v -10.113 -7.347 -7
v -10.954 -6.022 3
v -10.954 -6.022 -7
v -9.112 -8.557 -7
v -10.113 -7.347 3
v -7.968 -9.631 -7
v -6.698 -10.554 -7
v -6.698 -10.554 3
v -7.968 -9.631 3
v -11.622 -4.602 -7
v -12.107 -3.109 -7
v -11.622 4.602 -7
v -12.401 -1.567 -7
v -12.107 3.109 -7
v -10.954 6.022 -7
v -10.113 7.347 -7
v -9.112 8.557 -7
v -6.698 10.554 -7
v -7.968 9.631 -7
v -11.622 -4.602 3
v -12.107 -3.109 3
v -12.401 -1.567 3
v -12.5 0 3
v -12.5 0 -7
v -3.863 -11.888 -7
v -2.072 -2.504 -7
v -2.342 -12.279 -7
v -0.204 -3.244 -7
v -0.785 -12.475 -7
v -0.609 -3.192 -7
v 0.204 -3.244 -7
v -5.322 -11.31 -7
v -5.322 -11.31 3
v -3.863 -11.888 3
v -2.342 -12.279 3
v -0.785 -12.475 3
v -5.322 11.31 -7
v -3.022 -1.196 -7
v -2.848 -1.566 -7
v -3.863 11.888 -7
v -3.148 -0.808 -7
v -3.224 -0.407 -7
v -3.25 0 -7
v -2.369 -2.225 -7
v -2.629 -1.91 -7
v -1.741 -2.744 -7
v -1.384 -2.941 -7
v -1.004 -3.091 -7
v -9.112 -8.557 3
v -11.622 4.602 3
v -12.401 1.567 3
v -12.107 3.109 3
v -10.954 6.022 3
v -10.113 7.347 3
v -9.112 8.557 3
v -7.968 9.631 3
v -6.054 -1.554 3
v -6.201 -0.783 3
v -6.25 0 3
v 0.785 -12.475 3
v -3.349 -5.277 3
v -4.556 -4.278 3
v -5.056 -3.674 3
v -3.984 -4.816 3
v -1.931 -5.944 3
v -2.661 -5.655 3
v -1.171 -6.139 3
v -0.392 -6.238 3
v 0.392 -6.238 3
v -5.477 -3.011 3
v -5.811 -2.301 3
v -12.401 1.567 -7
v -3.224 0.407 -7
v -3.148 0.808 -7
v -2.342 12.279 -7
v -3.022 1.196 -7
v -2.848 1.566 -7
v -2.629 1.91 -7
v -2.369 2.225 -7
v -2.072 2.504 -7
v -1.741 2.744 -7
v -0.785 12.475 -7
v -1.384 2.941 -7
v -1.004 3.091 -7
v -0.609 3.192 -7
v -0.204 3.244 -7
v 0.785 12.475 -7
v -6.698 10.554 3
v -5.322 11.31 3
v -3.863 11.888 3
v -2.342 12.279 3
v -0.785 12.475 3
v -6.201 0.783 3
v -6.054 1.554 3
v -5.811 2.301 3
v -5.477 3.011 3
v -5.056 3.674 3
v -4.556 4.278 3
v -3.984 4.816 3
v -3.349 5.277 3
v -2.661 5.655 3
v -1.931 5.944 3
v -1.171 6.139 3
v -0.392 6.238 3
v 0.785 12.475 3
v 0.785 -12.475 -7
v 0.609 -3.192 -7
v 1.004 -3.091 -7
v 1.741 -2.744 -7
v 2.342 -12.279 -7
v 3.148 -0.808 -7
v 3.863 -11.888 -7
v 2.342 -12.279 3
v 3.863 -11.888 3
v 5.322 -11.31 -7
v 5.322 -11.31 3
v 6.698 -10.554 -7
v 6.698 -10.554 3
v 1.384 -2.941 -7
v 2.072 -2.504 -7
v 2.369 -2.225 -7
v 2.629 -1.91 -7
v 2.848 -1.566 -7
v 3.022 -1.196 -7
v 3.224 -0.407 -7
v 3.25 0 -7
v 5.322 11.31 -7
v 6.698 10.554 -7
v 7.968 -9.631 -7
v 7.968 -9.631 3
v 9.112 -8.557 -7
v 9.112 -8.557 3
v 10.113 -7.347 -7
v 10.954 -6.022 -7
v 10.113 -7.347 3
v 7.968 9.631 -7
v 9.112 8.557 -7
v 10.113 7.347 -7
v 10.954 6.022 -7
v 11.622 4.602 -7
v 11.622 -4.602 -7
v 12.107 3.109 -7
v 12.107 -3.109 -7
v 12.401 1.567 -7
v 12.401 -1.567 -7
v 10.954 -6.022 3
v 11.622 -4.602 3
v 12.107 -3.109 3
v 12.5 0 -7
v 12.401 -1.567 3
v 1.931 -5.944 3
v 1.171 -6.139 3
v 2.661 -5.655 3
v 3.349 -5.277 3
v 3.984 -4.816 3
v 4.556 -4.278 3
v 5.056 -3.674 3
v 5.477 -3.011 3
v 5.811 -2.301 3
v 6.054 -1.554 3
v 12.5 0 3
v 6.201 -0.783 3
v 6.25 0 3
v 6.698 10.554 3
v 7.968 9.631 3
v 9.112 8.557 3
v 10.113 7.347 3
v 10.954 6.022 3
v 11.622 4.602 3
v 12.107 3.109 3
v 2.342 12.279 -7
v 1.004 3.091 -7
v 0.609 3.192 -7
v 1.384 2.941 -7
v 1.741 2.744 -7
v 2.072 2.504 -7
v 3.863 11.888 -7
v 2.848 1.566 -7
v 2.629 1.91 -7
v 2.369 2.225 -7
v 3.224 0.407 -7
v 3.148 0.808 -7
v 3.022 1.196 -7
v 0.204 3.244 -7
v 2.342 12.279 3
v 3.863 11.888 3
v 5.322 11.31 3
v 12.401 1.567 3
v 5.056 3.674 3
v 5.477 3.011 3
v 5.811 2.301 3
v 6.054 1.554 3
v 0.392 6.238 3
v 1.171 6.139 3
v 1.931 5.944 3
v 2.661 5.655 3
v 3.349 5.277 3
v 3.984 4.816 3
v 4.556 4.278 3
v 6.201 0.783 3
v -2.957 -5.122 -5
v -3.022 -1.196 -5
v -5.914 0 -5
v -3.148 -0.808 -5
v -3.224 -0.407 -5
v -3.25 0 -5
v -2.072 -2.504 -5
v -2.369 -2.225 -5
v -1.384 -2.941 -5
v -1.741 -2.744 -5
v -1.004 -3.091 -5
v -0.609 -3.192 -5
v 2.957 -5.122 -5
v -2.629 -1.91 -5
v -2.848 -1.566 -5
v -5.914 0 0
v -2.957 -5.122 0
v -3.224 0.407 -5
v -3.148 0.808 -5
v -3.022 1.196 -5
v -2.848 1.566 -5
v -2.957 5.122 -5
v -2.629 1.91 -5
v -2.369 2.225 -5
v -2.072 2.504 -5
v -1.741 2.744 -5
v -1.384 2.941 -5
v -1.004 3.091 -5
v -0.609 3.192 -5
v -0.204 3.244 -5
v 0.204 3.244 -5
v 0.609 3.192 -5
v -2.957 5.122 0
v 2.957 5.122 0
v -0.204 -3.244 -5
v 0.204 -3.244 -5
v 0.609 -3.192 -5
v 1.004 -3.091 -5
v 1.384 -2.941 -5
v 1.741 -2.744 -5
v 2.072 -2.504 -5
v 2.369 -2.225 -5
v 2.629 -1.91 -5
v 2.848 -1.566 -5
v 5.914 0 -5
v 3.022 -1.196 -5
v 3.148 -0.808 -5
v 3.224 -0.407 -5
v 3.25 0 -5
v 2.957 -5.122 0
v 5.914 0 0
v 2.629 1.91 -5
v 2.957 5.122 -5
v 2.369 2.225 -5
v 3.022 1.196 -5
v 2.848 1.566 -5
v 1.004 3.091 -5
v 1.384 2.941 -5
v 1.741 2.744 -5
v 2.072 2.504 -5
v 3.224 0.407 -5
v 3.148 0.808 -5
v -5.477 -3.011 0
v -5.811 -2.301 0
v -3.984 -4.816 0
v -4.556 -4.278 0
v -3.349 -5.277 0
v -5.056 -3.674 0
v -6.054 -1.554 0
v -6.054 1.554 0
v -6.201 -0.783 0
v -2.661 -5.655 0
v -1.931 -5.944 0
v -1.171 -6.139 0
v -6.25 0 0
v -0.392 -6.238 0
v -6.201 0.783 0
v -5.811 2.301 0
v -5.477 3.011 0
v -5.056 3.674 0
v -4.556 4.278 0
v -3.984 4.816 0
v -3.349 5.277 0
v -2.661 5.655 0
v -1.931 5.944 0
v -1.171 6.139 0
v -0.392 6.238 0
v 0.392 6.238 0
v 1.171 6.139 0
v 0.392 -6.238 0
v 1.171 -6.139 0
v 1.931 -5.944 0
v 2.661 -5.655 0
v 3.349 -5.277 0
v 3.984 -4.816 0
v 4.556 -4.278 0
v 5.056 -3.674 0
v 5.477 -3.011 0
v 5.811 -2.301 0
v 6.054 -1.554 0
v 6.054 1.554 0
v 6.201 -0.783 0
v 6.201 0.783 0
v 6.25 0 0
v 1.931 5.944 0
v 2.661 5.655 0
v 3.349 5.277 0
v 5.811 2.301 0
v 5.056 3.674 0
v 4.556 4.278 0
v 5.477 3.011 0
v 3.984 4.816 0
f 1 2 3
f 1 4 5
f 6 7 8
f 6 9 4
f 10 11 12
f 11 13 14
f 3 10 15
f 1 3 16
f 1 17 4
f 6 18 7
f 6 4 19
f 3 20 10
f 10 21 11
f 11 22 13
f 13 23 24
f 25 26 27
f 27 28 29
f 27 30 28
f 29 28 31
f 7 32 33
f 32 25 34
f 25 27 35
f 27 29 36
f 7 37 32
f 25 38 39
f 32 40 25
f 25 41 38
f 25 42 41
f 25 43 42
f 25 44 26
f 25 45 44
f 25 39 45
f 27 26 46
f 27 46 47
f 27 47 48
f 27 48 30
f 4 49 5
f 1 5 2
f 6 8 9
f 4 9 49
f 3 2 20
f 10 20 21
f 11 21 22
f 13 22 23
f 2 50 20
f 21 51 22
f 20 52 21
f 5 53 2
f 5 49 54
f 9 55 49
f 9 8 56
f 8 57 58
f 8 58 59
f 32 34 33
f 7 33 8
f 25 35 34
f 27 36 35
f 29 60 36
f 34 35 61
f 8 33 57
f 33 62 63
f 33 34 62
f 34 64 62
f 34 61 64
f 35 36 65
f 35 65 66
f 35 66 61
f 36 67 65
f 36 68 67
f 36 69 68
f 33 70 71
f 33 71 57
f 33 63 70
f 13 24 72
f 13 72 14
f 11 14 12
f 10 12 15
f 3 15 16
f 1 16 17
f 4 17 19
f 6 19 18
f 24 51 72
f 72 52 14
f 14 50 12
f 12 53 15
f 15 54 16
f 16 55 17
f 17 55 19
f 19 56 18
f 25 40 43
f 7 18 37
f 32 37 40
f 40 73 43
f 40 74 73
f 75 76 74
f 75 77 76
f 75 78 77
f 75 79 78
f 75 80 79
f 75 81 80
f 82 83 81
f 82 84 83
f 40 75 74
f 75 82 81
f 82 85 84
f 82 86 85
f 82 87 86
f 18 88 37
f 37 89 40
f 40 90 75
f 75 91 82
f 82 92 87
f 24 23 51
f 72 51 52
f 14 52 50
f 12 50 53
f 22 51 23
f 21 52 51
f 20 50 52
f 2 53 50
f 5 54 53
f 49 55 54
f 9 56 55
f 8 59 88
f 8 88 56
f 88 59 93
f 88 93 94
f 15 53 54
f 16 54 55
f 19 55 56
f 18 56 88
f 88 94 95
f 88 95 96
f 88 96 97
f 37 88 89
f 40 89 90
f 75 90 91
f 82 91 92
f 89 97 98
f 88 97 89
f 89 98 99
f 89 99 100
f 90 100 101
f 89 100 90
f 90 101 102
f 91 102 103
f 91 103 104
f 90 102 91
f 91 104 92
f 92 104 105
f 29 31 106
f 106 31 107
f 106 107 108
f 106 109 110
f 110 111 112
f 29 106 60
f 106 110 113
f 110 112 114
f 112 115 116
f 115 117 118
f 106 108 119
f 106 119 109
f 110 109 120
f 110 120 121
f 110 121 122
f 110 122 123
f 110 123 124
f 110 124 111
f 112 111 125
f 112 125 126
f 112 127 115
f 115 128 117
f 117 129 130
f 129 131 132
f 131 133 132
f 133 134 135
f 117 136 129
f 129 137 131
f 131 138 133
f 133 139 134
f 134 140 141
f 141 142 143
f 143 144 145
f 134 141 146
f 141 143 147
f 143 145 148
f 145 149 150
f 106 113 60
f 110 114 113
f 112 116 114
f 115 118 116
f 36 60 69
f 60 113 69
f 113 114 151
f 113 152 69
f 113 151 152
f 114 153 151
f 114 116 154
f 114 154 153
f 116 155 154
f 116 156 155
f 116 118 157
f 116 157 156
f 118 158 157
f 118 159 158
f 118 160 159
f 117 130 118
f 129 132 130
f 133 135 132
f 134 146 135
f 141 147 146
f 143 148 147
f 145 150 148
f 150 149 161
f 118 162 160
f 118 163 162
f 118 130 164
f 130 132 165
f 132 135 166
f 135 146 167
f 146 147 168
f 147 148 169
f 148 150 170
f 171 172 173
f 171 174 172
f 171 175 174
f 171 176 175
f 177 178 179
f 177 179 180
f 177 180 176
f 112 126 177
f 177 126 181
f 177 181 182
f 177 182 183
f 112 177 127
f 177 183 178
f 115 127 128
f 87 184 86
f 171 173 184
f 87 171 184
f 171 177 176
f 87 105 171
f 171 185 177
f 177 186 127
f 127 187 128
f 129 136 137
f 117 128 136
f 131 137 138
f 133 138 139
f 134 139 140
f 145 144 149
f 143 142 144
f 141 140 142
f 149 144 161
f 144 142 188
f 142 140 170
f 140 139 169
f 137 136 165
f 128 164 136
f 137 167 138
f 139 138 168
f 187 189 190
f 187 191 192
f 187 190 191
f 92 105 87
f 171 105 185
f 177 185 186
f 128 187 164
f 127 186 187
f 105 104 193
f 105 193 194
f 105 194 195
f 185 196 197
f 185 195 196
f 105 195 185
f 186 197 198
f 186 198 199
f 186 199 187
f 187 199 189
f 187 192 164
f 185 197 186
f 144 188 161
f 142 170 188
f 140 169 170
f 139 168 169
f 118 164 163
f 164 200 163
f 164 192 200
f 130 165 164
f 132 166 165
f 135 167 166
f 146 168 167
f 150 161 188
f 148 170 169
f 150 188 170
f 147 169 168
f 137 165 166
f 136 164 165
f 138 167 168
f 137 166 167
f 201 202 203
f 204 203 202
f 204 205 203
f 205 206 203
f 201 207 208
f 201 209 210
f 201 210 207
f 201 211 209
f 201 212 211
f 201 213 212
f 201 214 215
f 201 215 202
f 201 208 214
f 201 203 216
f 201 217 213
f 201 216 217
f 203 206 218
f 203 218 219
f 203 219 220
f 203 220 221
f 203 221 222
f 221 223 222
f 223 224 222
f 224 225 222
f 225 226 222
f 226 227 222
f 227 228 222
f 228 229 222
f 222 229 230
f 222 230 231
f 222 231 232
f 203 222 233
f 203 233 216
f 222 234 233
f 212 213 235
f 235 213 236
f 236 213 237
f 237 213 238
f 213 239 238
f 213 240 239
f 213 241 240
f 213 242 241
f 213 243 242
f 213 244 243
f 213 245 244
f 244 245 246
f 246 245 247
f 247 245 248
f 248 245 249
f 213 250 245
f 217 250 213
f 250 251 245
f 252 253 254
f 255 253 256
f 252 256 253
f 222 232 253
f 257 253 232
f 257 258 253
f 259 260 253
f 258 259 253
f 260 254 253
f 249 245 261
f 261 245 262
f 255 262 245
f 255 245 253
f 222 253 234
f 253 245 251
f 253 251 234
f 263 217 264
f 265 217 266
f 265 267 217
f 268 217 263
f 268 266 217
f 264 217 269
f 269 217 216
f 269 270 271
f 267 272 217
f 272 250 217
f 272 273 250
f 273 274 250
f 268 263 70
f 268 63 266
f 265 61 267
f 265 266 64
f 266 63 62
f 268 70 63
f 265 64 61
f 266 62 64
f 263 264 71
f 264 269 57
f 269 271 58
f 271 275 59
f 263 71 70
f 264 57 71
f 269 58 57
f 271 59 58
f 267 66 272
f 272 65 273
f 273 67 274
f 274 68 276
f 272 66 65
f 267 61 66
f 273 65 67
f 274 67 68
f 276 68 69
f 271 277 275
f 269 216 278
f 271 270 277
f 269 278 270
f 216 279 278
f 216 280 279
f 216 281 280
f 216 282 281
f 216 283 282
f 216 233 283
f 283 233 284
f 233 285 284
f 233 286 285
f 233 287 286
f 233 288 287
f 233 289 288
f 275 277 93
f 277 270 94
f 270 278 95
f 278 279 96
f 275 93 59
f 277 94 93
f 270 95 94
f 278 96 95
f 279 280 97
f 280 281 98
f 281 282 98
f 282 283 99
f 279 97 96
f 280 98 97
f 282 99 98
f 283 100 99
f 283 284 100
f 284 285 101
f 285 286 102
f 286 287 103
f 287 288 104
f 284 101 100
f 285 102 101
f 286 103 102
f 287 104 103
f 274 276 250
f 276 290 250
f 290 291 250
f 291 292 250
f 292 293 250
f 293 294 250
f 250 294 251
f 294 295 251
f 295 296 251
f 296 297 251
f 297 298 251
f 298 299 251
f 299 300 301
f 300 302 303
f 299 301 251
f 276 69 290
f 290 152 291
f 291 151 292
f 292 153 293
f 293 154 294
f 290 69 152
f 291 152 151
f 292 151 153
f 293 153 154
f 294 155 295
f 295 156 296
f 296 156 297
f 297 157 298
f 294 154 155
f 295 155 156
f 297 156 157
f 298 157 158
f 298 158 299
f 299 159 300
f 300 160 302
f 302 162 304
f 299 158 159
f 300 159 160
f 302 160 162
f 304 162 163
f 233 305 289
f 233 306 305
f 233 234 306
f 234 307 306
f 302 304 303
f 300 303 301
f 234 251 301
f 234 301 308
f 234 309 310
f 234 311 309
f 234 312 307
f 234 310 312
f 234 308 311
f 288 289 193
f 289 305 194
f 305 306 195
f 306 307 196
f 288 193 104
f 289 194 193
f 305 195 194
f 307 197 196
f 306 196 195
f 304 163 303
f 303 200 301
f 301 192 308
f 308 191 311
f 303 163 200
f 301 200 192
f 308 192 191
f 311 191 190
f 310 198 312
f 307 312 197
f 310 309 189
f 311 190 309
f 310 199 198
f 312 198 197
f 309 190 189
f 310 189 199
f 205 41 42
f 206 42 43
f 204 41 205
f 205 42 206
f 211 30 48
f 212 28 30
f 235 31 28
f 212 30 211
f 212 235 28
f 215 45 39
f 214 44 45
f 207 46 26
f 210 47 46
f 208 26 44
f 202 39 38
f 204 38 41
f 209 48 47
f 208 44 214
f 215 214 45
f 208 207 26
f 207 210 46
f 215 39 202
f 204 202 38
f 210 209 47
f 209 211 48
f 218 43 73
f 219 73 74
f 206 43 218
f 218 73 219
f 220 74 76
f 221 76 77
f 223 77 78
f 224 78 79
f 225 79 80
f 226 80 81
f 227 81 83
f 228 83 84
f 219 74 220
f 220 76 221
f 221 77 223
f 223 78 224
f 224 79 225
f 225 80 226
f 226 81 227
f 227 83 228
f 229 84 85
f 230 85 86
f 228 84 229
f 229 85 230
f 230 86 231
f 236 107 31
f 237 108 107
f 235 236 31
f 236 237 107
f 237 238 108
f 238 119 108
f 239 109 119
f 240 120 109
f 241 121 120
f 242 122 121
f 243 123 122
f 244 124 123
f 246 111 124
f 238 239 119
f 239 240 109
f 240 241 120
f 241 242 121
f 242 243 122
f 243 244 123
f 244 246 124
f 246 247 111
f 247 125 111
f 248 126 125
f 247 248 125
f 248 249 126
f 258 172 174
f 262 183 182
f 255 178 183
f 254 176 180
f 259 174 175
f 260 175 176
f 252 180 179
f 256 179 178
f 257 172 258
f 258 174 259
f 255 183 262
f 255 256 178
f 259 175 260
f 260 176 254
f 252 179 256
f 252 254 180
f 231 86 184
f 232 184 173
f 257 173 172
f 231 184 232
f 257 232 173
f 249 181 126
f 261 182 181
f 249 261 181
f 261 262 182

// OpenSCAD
$fn = 50;


difference() {
	union() {
		translate(v = [0, 0, -7.0000000000]) {
			cylinder(h = 10.0000000000, r = 12.5000000000);
		}
		#translate(v = [0, 0, -8.5000000000]) {
			cylinder(h = 8.5000000000, r = 2.8750000000);
		}
	}
	union() {
		translate(v = [0, 0, 0]) {
			rotate(a = [0, 0, 0]) {
				difference() {
					union() {
						translate(v = [0, 0, -5]) {
							linear_extrude(height = 5) {
								polygon(points = [[5.9142500000, 0.0000000000], [2.9571250000, 5.1218907443], [-2.9571250000, 5.1218907443], [-5.9142500000, 0.0000000000], [-2.9571250000, -5.1218907443], [2.9571250000, -5.1218907443]]);
							}
						}
					}
					union();
				}
			}
		}
		#cylinder(h = 3, r = 6.2500000000);
		#translate(v = [0, 0, -100.0000000000]) {
			cylinder(h = 200, r = 3.2500000000);
		}
	}
}
